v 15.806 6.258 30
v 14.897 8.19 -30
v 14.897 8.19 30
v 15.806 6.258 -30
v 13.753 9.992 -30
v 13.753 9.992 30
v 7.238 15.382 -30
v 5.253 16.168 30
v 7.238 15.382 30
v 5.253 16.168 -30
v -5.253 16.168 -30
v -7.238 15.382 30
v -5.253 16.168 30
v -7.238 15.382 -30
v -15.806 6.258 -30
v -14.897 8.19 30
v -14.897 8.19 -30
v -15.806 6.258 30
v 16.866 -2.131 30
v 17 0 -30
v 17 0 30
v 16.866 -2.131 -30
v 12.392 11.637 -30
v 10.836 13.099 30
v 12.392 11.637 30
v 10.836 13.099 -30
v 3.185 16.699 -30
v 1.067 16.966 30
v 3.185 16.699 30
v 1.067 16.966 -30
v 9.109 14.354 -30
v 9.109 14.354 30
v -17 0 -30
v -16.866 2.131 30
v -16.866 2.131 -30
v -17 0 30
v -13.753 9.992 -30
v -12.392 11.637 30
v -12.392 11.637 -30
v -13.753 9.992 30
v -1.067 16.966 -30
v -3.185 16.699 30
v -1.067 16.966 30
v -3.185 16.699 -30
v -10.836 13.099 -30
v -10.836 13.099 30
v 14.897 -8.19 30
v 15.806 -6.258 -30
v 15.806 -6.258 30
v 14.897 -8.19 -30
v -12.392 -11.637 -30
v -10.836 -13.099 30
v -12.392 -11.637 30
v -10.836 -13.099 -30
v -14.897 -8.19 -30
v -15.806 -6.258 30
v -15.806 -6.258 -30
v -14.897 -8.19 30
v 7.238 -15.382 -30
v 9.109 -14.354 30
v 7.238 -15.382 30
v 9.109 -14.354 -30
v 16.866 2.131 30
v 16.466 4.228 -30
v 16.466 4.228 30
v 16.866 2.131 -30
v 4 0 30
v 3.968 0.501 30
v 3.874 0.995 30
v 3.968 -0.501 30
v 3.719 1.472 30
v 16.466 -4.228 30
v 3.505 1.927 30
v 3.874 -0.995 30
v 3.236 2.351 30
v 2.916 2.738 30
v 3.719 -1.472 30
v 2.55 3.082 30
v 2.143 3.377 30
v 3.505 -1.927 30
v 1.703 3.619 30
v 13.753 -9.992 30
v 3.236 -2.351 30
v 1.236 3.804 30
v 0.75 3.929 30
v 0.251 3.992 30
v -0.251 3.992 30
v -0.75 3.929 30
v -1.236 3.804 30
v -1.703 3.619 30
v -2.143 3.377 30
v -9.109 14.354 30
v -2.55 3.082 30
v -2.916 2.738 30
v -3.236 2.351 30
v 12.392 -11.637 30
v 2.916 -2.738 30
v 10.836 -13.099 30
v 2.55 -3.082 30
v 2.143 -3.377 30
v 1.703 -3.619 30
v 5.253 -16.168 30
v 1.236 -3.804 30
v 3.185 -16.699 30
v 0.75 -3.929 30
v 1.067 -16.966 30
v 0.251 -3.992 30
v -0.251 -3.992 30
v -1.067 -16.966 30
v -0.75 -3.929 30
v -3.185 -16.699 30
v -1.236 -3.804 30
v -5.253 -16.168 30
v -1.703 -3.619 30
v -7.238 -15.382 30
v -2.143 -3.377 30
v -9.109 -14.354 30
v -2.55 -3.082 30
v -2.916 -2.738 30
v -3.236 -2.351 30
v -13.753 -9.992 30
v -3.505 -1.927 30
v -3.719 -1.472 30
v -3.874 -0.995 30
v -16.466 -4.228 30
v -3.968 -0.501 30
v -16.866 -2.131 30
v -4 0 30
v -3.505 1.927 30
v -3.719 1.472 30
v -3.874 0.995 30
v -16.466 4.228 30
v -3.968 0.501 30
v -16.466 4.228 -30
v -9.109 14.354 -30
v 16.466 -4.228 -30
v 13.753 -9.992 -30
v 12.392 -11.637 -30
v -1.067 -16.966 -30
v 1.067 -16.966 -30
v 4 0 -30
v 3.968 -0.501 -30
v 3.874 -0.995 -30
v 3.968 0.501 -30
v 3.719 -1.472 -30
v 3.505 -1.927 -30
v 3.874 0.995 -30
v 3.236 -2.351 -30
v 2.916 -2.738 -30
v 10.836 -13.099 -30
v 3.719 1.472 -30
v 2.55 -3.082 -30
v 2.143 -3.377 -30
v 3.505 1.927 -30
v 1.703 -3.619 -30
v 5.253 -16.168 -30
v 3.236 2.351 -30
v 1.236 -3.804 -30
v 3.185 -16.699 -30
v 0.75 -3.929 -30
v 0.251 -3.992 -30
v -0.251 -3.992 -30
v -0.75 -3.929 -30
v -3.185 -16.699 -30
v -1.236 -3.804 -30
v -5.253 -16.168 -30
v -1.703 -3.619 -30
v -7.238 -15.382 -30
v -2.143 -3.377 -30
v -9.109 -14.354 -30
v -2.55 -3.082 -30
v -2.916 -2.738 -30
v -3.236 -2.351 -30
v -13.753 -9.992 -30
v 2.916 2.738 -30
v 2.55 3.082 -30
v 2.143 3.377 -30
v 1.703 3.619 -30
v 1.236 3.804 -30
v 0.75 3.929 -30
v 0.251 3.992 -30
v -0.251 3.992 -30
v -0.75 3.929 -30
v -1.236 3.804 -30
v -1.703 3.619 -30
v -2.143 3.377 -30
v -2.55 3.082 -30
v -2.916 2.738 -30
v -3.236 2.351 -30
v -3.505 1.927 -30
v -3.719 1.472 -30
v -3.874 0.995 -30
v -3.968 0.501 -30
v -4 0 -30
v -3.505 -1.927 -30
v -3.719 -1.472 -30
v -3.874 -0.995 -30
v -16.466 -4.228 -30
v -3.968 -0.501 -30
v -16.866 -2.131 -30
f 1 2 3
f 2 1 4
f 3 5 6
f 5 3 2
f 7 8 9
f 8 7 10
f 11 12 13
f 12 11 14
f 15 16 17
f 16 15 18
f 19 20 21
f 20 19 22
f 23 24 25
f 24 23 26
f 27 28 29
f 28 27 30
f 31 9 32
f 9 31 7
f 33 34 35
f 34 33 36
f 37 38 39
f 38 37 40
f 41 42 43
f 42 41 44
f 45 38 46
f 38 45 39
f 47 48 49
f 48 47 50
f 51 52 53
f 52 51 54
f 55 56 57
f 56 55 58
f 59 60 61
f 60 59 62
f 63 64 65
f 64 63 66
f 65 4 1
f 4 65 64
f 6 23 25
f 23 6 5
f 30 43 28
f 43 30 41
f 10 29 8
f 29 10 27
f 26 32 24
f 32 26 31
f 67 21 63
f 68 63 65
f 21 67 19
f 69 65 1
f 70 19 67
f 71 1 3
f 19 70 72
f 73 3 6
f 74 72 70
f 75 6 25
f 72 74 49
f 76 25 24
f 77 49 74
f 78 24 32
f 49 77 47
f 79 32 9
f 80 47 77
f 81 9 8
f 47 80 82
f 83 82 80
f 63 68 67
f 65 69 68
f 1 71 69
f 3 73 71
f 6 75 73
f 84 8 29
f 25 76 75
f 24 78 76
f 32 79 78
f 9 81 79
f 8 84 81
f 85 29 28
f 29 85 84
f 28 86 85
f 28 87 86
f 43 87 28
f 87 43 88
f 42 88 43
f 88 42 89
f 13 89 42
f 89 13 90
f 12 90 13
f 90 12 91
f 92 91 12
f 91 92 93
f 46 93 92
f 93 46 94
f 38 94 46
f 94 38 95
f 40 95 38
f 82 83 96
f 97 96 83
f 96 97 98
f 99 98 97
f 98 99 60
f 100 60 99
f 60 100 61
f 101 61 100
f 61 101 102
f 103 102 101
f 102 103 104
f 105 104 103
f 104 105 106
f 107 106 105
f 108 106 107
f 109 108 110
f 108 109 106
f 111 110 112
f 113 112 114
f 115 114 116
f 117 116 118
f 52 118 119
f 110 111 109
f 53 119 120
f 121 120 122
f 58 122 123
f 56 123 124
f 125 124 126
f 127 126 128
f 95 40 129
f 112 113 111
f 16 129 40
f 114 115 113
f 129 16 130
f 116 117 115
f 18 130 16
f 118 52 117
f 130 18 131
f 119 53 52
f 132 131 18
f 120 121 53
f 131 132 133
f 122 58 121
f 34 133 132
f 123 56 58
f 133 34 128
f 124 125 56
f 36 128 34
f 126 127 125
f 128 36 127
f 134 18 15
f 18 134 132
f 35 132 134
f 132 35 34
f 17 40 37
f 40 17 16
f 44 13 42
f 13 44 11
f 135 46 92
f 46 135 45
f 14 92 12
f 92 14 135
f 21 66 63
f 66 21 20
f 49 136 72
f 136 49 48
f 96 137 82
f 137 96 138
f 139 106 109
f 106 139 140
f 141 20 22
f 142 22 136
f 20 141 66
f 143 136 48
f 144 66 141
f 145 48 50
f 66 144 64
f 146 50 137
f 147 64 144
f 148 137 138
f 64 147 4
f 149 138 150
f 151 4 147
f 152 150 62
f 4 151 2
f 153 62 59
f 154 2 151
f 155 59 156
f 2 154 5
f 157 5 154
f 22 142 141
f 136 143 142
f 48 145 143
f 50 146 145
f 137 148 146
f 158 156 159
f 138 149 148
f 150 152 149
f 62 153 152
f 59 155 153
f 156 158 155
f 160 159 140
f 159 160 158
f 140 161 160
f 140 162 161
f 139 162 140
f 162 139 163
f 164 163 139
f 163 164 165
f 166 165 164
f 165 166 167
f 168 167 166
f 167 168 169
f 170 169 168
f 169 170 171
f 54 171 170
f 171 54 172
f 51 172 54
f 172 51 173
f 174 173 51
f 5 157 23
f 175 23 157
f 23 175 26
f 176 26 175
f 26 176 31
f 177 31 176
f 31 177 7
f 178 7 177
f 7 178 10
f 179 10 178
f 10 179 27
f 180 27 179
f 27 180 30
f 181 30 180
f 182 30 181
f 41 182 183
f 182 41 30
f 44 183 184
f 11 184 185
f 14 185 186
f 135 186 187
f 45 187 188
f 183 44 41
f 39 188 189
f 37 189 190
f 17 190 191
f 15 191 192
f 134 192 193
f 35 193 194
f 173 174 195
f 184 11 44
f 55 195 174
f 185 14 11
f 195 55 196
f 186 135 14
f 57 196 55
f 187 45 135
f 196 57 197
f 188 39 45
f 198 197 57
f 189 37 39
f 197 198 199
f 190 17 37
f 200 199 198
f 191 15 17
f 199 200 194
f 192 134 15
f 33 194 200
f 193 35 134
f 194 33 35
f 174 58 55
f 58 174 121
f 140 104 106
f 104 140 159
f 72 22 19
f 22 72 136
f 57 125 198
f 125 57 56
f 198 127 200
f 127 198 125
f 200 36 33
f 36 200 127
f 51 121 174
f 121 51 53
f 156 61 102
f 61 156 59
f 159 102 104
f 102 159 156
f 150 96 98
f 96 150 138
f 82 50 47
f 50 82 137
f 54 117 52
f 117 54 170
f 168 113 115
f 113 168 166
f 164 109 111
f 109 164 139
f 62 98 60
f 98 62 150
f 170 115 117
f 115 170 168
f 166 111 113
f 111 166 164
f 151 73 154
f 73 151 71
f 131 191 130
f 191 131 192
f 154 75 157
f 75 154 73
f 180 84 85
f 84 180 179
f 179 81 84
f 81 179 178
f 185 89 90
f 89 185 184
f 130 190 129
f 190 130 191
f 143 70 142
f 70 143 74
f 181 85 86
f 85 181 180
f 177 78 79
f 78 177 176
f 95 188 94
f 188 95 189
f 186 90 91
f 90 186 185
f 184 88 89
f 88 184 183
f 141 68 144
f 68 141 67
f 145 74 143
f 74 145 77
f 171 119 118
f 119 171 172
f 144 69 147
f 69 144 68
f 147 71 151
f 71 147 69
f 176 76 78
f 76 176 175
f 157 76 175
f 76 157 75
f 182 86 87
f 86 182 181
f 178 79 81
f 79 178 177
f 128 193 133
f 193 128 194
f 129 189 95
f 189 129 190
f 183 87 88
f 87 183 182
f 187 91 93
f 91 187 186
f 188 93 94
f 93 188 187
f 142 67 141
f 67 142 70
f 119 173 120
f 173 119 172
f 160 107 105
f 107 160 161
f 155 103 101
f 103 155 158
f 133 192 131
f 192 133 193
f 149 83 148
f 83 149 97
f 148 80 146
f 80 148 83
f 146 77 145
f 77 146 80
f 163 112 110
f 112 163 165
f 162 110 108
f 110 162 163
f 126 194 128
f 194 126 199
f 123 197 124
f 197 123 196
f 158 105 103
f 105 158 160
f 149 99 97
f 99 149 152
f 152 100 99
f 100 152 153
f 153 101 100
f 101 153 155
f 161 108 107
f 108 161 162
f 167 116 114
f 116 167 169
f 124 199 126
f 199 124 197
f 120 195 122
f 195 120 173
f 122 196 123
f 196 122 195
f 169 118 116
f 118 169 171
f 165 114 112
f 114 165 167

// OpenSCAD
$fn = 50;


difference() {
	union() {
		translate(v = [0, 0, -30.0000000000]) {
			cylinder(h = 60, r = 17.0000000000);
		}
	}
	union() {
		translate(v = [0, 0, -100.0000000000]) {
			cylinder(h = 200, r = 4);
		}
	}
}
